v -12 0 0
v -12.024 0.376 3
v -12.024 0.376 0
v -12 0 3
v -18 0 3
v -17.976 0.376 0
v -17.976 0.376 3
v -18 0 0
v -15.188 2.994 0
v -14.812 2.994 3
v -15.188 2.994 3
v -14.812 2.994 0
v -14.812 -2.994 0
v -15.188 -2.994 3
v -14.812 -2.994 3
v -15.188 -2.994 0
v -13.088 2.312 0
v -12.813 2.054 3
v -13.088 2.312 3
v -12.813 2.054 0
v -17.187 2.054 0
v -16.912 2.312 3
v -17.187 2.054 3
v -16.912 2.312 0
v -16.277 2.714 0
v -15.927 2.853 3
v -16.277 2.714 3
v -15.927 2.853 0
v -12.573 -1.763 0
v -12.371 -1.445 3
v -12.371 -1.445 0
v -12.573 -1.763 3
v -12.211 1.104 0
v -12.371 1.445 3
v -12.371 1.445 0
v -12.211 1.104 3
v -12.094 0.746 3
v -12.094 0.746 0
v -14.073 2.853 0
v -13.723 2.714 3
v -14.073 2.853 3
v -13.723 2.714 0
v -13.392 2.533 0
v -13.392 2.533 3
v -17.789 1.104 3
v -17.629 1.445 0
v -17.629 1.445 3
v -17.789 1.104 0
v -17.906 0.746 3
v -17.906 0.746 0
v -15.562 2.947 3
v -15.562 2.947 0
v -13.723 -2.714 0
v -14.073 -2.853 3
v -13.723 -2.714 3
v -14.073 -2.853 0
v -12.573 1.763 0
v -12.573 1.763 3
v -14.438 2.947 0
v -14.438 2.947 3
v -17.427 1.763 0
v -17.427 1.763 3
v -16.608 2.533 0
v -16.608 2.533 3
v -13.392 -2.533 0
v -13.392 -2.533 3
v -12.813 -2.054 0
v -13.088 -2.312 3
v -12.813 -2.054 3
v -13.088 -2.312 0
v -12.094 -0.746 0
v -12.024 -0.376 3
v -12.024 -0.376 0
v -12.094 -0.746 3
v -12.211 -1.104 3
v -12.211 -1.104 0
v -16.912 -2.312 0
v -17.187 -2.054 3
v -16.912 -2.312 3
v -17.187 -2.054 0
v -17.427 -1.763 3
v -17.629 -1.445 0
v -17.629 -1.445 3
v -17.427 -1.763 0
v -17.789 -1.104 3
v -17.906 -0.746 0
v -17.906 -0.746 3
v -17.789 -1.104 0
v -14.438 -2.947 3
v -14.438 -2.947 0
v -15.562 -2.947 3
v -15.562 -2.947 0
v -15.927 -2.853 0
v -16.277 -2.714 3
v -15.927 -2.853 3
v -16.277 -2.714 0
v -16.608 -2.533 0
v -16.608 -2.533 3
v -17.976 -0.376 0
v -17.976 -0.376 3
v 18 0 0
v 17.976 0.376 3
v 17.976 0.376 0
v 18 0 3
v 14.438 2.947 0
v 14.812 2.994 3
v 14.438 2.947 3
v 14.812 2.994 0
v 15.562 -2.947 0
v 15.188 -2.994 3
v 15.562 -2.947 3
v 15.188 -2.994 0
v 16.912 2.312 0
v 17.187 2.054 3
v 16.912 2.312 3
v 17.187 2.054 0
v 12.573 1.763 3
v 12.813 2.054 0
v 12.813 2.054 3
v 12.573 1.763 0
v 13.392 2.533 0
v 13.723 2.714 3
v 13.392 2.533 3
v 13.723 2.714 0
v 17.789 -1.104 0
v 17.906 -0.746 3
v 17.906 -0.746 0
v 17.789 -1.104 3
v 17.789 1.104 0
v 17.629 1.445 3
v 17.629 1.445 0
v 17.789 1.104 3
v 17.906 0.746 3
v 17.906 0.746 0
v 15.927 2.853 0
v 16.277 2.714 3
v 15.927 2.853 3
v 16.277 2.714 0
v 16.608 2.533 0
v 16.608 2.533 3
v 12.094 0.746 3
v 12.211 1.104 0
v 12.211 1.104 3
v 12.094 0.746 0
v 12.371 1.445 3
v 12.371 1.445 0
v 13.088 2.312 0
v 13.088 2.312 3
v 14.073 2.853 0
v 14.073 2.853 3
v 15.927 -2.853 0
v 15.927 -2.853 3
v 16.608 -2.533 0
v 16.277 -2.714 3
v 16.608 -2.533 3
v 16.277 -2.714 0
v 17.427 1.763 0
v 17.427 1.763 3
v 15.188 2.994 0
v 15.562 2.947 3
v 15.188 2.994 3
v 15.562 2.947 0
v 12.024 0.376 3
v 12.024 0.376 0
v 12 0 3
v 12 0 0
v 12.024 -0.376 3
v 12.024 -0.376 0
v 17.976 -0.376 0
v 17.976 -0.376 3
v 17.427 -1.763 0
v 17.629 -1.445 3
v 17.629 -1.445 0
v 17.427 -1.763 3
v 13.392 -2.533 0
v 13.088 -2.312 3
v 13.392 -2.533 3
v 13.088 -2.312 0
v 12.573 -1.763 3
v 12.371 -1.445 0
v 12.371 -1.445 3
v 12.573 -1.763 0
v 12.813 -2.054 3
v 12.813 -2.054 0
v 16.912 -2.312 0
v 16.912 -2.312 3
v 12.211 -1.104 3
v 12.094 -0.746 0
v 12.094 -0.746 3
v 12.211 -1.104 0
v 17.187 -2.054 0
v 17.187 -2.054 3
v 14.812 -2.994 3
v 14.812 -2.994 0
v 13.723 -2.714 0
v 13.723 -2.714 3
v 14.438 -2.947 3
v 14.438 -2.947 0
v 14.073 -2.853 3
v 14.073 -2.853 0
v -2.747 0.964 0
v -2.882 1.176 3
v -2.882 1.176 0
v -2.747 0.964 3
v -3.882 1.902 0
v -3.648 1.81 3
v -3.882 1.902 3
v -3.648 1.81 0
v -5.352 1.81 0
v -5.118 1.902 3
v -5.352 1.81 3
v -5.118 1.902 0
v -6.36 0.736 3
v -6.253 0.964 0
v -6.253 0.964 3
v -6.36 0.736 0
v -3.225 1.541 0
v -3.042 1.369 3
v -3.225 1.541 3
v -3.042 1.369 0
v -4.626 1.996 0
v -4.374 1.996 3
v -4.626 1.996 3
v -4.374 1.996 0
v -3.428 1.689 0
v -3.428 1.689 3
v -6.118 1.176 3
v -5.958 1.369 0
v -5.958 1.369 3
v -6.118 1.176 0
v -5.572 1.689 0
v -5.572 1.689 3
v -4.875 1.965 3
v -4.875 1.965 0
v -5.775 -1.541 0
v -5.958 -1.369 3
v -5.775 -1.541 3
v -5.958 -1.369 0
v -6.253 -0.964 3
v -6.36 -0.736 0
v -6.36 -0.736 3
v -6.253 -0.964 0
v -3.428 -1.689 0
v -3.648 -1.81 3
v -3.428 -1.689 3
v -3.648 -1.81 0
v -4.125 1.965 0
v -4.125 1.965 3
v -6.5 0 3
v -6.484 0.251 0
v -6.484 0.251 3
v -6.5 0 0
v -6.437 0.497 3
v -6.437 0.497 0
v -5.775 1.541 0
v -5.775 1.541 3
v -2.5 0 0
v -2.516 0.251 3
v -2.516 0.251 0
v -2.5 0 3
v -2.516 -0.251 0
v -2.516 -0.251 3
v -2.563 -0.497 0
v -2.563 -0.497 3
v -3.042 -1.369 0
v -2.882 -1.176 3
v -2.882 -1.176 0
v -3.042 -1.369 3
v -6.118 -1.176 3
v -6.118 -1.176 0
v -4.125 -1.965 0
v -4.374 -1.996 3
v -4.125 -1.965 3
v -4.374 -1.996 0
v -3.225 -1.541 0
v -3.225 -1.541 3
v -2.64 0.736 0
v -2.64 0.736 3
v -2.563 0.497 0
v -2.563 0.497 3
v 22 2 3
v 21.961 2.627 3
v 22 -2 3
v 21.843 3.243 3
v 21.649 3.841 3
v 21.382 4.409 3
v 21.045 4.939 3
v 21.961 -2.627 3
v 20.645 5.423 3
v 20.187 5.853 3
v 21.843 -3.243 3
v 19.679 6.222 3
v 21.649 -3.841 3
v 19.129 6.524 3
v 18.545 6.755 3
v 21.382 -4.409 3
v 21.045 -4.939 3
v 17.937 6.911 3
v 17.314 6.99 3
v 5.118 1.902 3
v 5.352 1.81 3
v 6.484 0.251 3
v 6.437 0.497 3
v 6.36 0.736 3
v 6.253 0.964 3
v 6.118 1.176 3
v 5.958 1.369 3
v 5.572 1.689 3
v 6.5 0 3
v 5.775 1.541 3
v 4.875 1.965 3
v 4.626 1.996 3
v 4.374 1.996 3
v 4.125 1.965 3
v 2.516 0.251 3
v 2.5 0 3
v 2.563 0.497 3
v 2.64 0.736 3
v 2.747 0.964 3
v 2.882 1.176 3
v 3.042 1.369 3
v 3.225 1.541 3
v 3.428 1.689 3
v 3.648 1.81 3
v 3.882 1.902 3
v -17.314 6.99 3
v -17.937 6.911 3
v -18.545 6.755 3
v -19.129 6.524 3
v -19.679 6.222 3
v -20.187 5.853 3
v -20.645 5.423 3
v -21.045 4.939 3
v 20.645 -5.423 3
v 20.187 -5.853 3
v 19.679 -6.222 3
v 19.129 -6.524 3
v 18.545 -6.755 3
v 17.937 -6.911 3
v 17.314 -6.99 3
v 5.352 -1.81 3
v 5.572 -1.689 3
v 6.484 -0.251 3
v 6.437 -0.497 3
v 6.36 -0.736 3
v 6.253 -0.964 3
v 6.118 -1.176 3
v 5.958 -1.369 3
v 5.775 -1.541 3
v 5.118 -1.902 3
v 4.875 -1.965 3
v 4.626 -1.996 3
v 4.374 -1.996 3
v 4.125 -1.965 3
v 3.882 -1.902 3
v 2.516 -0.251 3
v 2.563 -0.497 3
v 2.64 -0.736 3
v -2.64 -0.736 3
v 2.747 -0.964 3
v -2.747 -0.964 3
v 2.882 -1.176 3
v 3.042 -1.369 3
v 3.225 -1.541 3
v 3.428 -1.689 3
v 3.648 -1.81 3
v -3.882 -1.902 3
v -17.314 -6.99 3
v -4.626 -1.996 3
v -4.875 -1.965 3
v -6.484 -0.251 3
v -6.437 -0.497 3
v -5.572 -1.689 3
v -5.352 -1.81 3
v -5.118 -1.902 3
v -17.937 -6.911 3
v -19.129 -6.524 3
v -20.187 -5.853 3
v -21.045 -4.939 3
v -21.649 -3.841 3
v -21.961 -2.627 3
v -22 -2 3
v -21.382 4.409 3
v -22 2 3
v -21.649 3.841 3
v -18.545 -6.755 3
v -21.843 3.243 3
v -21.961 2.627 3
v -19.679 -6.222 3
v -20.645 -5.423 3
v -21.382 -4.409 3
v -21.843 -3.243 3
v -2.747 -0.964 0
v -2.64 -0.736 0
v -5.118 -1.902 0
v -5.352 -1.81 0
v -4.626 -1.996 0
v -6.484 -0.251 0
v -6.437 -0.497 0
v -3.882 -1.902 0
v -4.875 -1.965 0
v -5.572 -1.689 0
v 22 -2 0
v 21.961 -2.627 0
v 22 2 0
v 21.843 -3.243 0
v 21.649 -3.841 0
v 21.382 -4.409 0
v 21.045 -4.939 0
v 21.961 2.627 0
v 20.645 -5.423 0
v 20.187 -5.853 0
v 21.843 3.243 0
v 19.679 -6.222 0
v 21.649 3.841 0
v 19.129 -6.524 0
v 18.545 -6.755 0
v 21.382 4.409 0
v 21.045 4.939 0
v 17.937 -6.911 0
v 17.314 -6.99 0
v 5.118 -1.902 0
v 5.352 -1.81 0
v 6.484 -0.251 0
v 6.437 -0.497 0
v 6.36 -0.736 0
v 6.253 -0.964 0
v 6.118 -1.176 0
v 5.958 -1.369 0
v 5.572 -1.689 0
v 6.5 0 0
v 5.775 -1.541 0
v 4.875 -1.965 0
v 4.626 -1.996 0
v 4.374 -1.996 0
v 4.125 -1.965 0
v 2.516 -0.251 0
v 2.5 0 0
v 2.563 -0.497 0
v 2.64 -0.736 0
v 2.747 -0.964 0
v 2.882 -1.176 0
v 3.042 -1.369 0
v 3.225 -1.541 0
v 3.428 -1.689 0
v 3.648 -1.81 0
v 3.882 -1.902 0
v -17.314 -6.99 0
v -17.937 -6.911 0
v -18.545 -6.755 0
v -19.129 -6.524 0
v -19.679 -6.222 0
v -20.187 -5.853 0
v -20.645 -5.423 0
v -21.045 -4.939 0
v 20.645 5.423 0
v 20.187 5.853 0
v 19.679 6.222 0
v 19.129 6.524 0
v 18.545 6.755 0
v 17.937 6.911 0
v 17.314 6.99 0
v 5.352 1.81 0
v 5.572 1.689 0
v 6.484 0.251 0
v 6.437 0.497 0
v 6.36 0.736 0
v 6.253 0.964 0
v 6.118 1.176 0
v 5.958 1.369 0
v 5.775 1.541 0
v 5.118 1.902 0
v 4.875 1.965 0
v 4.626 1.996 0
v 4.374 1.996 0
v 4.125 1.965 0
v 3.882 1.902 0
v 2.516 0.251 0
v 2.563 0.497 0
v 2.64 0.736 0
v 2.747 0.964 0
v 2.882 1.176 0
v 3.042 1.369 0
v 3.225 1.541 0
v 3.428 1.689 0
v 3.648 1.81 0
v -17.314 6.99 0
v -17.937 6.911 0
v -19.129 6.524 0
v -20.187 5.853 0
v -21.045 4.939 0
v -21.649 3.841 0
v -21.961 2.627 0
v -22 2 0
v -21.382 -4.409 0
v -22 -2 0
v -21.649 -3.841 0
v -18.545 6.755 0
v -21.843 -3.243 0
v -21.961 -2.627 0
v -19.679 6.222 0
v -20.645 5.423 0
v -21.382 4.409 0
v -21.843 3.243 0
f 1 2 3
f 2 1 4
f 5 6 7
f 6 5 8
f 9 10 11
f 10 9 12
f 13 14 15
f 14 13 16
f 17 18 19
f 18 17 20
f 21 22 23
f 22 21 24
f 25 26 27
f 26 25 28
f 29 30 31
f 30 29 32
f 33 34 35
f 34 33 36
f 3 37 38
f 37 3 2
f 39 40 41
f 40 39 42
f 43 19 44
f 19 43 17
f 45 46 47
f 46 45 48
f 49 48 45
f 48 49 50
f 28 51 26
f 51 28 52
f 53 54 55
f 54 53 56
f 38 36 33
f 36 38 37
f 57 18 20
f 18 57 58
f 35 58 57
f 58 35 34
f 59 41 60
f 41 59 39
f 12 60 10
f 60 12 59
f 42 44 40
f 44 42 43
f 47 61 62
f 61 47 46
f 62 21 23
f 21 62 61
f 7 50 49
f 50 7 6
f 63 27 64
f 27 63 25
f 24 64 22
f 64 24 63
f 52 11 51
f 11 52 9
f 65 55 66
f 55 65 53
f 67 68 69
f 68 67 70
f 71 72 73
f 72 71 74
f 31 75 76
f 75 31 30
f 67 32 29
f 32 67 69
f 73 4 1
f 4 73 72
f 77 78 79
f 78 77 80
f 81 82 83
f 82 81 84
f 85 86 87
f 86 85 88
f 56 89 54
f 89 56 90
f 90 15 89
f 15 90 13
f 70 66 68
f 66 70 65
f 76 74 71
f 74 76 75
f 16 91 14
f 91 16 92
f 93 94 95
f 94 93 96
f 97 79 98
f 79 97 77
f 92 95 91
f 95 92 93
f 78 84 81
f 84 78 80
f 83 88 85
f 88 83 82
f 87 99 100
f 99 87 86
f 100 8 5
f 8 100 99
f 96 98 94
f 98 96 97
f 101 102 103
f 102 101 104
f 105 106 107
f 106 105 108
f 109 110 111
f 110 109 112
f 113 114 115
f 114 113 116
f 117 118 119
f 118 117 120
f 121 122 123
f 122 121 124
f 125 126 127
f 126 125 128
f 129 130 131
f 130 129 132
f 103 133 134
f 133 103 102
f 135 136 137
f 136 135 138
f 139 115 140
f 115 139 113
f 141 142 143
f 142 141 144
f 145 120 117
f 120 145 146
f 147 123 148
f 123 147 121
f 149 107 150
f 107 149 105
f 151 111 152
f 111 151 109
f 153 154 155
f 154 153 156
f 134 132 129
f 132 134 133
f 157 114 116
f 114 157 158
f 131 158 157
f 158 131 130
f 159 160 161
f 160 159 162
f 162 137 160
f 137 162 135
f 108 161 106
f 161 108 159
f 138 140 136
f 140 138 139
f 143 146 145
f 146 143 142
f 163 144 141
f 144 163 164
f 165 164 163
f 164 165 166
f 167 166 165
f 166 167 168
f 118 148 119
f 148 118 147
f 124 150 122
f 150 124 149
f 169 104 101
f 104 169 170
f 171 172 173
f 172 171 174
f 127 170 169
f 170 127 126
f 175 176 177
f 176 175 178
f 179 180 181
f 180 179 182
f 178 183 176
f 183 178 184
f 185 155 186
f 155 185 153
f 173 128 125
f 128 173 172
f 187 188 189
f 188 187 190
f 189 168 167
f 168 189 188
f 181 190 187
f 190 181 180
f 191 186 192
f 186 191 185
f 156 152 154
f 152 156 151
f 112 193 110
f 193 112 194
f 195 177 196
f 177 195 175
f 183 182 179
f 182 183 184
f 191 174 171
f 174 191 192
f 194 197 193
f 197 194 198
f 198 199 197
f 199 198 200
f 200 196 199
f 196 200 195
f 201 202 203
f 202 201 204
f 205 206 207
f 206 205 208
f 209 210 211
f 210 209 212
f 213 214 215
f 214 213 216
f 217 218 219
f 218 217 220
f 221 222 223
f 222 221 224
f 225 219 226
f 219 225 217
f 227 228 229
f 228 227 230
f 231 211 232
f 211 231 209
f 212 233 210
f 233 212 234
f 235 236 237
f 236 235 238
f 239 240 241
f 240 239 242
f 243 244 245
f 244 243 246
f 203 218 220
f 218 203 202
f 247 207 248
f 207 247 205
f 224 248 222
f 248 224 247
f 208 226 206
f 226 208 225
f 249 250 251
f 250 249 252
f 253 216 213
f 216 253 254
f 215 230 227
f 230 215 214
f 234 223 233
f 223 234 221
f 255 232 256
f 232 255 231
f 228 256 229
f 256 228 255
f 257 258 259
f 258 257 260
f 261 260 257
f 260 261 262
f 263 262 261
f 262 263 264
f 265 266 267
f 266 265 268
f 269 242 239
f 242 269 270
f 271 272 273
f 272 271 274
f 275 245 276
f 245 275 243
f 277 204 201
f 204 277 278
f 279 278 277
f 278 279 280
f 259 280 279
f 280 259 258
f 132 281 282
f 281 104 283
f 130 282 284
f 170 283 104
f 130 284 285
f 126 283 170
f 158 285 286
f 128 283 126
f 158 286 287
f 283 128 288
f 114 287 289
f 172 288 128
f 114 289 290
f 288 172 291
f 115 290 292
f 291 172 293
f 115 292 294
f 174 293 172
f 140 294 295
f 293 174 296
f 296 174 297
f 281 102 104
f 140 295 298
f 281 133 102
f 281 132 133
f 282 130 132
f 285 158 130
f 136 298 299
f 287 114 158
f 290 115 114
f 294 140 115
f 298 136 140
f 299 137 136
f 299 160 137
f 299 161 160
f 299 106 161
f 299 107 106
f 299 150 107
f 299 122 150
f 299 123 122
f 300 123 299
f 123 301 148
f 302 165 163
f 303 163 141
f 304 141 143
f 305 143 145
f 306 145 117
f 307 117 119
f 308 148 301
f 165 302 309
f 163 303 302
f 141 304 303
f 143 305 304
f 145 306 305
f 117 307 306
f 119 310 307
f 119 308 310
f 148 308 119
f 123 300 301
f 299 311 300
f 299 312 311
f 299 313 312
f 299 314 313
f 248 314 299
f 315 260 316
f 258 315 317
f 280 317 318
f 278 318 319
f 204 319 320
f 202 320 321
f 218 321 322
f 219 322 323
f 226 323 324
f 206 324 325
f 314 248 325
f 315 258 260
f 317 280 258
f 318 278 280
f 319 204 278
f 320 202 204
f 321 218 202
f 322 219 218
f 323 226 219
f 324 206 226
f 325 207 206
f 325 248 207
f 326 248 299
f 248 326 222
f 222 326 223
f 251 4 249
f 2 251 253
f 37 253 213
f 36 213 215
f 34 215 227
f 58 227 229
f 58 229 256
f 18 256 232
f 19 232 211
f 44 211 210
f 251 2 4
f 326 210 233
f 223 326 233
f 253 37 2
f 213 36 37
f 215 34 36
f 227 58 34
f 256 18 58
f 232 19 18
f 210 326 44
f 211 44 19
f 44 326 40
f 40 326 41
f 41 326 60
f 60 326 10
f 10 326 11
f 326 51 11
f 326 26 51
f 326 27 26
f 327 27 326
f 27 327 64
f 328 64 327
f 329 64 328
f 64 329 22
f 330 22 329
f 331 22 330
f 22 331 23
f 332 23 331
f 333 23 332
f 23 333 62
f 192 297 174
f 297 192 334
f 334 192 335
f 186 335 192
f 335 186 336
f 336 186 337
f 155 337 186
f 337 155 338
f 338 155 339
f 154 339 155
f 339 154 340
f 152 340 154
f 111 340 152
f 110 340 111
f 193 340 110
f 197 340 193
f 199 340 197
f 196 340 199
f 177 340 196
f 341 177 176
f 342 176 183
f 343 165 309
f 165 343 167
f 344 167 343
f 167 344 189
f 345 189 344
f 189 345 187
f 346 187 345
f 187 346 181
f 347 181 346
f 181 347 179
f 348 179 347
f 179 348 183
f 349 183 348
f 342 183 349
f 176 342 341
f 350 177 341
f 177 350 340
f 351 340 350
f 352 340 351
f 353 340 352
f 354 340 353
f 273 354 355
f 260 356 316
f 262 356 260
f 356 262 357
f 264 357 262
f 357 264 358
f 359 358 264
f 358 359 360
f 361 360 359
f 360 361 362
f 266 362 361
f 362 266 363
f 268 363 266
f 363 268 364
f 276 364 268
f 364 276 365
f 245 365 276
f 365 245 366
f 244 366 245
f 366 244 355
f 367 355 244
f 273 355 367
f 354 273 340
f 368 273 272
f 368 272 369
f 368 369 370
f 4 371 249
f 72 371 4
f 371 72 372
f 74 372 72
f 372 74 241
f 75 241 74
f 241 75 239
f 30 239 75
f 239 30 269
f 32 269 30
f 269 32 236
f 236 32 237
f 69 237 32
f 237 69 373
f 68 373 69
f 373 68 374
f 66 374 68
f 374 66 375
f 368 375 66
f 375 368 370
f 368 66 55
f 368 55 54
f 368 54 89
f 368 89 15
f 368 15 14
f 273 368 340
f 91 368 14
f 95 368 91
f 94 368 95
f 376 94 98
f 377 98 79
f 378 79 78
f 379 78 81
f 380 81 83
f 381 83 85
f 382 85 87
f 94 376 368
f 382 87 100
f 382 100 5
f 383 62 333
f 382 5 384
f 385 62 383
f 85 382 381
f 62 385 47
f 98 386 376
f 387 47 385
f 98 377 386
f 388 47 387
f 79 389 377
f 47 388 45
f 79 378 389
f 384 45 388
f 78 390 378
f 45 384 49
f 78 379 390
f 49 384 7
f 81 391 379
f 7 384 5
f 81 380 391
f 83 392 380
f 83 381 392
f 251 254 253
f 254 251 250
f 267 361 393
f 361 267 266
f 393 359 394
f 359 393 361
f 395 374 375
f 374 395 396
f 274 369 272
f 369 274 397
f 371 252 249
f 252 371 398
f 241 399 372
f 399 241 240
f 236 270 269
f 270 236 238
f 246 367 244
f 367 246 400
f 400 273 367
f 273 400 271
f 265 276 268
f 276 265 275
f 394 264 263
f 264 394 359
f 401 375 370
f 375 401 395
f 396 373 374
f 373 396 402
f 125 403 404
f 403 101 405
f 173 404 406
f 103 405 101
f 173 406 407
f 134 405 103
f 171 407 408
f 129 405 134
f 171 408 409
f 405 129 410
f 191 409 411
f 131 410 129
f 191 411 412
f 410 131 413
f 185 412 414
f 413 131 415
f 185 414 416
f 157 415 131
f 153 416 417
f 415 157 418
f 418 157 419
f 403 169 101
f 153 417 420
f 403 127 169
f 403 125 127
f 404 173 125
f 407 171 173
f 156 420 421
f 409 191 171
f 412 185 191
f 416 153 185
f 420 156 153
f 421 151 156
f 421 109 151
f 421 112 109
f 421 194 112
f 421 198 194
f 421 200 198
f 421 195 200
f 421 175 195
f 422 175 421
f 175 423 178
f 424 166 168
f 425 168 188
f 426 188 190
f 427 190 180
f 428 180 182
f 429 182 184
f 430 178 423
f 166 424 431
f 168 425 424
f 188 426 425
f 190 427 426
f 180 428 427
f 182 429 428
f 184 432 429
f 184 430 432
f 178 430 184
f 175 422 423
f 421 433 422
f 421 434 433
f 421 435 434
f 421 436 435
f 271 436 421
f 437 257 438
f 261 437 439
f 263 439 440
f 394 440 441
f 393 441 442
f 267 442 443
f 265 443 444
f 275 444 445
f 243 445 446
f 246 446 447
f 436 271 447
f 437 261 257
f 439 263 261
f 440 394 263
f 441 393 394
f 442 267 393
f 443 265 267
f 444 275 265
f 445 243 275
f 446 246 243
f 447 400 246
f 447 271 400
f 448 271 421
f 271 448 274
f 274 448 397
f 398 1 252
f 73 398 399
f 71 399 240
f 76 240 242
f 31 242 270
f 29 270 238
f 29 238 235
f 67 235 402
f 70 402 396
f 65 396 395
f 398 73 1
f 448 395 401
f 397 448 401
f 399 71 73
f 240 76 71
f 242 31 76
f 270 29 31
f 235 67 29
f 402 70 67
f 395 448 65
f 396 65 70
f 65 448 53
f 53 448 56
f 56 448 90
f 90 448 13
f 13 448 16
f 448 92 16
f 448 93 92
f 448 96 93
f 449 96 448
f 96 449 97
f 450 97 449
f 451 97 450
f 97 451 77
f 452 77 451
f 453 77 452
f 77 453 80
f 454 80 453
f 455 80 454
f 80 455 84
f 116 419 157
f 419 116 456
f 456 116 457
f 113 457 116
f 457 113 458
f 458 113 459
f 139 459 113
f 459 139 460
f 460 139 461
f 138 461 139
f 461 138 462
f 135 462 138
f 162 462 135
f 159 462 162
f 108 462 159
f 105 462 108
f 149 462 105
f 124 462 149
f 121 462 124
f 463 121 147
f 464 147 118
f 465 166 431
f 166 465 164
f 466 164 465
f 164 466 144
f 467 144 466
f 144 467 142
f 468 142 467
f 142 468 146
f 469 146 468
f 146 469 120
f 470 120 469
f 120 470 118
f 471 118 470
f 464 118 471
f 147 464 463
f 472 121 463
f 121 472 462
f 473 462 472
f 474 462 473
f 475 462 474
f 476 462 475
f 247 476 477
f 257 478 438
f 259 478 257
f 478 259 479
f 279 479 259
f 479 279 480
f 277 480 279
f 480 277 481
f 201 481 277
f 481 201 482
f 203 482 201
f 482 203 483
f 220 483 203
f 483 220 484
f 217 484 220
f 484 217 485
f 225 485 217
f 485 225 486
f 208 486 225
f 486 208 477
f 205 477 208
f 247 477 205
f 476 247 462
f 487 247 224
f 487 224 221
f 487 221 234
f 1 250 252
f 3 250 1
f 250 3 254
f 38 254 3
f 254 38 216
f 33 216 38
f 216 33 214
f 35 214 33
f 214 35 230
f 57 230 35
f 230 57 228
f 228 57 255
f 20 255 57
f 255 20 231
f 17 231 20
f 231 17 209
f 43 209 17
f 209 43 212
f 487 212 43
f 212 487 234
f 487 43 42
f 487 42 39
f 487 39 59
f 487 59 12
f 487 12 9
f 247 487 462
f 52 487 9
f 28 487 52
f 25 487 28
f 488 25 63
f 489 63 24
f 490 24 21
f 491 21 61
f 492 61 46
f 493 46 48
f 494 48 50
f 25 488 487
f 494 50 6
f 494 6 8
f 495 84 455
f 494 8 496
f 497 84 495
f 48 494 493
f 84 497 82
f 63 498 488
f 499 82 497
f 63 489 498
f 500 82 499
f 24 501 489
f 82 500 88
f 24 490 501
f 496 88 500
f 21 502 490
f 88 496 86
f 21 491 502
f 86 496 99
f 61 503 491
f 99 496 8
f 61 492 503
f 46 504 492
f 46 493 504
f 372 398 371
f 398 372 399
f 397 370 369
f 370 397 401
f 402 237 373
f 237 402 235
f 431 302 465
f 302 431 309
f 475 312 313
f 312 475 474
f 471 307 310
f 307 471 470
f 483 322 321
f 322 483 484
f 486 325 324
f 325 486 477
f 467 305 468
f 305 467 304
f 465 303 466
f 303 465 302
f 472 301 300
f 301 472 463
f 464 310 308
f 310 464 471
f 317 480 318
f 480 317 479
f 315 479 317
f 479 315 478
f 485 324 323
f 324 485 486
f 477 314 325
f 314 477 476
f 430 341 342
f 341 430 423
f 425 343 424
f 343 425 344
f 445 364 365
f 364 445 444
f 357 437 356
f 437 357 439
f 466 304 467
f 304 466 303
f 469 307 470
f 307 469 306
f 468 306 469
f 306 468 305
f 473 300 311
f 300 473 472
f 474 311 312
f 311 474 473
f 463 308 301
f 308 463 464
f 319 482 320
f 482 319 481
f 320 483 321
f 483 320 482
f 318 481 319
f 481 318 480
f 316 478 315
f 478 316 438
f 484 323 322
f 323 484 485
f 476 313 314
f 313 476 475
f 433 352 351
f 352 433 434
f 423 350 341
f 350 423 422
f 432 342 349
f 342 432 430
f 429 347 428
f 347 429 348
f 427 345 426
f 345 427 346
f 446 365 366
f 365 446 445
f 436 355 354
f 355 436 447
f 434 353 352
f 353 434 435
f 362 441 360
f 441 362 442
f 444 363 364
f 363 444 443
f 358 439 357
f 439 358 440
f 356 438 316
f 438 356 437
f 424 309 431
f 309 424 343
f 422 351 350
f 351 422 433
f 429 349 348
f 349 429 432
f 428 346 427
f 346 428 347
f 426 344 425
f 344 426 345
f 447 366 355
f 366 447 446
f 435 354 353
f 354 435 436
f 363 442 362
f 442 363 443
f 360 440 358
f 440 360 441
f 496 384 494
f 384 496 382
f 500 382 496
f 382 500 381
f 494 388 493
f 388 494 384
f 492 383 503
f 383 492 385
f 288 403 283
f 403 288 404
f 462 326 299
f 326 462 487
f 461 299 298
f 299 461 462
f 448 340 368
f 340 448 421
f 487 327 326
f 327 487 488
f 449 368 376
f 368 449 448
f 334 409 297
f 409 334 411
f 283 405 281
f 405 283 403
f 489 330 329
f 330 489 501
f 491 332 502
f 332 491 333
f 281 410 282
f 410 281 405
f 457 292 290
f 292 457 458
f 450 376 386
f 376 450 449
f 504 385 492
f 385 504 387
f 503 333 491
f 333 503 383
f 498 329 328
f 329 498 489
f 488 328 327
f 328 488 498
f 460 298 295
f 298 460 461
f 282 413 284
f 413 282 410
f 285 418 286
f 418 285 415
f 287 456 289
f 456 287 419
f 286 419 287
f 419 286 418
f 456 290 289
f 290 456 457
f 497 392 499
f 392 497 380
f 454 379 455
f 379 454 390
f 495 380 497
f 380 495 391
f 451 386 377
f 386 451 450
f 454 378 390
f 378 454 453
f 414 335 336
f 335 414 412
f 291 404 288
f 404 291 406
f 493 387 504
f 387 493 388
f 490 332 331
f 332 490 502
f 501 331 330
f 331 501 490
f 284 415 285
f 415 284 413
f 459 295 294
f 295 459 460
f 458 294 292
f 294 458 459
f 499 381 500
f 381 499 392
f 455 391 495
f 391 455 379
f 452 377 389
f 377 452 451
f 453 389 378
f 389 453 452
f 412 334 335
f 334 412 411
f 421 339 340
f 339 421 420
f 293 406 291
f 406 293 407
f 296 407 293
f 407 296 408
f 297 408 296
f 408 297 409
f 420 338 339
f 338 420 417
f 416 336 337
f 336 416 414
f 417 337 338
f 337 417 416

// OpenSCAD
$fn = 50;


difference() {
	union() {
		hull() {
			translate(v = [-17.0000000000, 2.0000000000, 0]) {
				cylinder(h = 3, r = 5);
			}
			translate(v = [17.0000000000, 2.0000000000, 0]) {
				cylinder(h = 3, r = 5);
			}
			translate(v = [-17.0000000000, -2.0000000000, 0]) {
				cylinder(h = 3, r = 5);
			}
			translate(v = [17.0000000000, -2.0000000000, 0]) {
				cylinder(h = 3, r = 5);
			}
		}
	}
	union() {
		#translate(v = [-15.0000000000, 0.0000000000, 0]) {
			cylinder(h = 3, r = 3.0000000000);
		}
		#translate(v = [15.0000000000, 0.0000000000, 0]) {
			cylinder(h = 3, r = 3.0000000000);
		}
		#translate(v = [-15.0000000000, 0.0000000000, -100.0000000000]) {
			cylinder(h = 200, r = 3.0000000000);
		}
		#translate(v = [-15.0000000000, 0.0000000000, -100.0000000000]) {
			cylinder(h = 200, r = 3.0000000000);
		}
		#translate(v = [15.0000000000, 0.0000000000, -100.0000000000]) {
			cylinder(h = 200, r = 3.0000000000);
		}
		#translate(v = [15.0000000000, 0.0000000000, -100.0000000000]) {
			cylinder(h = 200, r = 3.0000000000);
		}
		#translate(v = [-15.0000000000, 0.0000000000, 0]) {
			cylinder(h = 3, r = 1.5000000000);
		}
		#translate(v = [15.0000000000, 0.0000000000, 0]) {
			cylinder(h = 3, r = 1.5000000000);
		}
		#translate(v = [-15.0000000000, 0.0000000000, 0]) {
			cylinder(h = 3, r = 1.5000000000);
		}
		#translate(v = [15.0000000000, 0.0000000000, 0]) {
			cylinder(h = 3, r = 1.5000000000);
		}
		#translate(v = [-15.0000000000, 0.0000000000, 0]) {
			cylinder(h = 3, r = 1.5000000000);
		}
		#translate(v = [15.0000000000, 0.0000000000, 0]) {
			cylinder(h = 3, r = 1.5000000000);
		}
		#translate(v = [-4.5000000000, 0, 0]) {
			cylinder(h = 3, r = 2.0000000000);
		}
		#translate(v = [4.5000000000, 0, 0]) {
			cylinder(h = 3, r = 2.0000000000);
		}
	}
}
